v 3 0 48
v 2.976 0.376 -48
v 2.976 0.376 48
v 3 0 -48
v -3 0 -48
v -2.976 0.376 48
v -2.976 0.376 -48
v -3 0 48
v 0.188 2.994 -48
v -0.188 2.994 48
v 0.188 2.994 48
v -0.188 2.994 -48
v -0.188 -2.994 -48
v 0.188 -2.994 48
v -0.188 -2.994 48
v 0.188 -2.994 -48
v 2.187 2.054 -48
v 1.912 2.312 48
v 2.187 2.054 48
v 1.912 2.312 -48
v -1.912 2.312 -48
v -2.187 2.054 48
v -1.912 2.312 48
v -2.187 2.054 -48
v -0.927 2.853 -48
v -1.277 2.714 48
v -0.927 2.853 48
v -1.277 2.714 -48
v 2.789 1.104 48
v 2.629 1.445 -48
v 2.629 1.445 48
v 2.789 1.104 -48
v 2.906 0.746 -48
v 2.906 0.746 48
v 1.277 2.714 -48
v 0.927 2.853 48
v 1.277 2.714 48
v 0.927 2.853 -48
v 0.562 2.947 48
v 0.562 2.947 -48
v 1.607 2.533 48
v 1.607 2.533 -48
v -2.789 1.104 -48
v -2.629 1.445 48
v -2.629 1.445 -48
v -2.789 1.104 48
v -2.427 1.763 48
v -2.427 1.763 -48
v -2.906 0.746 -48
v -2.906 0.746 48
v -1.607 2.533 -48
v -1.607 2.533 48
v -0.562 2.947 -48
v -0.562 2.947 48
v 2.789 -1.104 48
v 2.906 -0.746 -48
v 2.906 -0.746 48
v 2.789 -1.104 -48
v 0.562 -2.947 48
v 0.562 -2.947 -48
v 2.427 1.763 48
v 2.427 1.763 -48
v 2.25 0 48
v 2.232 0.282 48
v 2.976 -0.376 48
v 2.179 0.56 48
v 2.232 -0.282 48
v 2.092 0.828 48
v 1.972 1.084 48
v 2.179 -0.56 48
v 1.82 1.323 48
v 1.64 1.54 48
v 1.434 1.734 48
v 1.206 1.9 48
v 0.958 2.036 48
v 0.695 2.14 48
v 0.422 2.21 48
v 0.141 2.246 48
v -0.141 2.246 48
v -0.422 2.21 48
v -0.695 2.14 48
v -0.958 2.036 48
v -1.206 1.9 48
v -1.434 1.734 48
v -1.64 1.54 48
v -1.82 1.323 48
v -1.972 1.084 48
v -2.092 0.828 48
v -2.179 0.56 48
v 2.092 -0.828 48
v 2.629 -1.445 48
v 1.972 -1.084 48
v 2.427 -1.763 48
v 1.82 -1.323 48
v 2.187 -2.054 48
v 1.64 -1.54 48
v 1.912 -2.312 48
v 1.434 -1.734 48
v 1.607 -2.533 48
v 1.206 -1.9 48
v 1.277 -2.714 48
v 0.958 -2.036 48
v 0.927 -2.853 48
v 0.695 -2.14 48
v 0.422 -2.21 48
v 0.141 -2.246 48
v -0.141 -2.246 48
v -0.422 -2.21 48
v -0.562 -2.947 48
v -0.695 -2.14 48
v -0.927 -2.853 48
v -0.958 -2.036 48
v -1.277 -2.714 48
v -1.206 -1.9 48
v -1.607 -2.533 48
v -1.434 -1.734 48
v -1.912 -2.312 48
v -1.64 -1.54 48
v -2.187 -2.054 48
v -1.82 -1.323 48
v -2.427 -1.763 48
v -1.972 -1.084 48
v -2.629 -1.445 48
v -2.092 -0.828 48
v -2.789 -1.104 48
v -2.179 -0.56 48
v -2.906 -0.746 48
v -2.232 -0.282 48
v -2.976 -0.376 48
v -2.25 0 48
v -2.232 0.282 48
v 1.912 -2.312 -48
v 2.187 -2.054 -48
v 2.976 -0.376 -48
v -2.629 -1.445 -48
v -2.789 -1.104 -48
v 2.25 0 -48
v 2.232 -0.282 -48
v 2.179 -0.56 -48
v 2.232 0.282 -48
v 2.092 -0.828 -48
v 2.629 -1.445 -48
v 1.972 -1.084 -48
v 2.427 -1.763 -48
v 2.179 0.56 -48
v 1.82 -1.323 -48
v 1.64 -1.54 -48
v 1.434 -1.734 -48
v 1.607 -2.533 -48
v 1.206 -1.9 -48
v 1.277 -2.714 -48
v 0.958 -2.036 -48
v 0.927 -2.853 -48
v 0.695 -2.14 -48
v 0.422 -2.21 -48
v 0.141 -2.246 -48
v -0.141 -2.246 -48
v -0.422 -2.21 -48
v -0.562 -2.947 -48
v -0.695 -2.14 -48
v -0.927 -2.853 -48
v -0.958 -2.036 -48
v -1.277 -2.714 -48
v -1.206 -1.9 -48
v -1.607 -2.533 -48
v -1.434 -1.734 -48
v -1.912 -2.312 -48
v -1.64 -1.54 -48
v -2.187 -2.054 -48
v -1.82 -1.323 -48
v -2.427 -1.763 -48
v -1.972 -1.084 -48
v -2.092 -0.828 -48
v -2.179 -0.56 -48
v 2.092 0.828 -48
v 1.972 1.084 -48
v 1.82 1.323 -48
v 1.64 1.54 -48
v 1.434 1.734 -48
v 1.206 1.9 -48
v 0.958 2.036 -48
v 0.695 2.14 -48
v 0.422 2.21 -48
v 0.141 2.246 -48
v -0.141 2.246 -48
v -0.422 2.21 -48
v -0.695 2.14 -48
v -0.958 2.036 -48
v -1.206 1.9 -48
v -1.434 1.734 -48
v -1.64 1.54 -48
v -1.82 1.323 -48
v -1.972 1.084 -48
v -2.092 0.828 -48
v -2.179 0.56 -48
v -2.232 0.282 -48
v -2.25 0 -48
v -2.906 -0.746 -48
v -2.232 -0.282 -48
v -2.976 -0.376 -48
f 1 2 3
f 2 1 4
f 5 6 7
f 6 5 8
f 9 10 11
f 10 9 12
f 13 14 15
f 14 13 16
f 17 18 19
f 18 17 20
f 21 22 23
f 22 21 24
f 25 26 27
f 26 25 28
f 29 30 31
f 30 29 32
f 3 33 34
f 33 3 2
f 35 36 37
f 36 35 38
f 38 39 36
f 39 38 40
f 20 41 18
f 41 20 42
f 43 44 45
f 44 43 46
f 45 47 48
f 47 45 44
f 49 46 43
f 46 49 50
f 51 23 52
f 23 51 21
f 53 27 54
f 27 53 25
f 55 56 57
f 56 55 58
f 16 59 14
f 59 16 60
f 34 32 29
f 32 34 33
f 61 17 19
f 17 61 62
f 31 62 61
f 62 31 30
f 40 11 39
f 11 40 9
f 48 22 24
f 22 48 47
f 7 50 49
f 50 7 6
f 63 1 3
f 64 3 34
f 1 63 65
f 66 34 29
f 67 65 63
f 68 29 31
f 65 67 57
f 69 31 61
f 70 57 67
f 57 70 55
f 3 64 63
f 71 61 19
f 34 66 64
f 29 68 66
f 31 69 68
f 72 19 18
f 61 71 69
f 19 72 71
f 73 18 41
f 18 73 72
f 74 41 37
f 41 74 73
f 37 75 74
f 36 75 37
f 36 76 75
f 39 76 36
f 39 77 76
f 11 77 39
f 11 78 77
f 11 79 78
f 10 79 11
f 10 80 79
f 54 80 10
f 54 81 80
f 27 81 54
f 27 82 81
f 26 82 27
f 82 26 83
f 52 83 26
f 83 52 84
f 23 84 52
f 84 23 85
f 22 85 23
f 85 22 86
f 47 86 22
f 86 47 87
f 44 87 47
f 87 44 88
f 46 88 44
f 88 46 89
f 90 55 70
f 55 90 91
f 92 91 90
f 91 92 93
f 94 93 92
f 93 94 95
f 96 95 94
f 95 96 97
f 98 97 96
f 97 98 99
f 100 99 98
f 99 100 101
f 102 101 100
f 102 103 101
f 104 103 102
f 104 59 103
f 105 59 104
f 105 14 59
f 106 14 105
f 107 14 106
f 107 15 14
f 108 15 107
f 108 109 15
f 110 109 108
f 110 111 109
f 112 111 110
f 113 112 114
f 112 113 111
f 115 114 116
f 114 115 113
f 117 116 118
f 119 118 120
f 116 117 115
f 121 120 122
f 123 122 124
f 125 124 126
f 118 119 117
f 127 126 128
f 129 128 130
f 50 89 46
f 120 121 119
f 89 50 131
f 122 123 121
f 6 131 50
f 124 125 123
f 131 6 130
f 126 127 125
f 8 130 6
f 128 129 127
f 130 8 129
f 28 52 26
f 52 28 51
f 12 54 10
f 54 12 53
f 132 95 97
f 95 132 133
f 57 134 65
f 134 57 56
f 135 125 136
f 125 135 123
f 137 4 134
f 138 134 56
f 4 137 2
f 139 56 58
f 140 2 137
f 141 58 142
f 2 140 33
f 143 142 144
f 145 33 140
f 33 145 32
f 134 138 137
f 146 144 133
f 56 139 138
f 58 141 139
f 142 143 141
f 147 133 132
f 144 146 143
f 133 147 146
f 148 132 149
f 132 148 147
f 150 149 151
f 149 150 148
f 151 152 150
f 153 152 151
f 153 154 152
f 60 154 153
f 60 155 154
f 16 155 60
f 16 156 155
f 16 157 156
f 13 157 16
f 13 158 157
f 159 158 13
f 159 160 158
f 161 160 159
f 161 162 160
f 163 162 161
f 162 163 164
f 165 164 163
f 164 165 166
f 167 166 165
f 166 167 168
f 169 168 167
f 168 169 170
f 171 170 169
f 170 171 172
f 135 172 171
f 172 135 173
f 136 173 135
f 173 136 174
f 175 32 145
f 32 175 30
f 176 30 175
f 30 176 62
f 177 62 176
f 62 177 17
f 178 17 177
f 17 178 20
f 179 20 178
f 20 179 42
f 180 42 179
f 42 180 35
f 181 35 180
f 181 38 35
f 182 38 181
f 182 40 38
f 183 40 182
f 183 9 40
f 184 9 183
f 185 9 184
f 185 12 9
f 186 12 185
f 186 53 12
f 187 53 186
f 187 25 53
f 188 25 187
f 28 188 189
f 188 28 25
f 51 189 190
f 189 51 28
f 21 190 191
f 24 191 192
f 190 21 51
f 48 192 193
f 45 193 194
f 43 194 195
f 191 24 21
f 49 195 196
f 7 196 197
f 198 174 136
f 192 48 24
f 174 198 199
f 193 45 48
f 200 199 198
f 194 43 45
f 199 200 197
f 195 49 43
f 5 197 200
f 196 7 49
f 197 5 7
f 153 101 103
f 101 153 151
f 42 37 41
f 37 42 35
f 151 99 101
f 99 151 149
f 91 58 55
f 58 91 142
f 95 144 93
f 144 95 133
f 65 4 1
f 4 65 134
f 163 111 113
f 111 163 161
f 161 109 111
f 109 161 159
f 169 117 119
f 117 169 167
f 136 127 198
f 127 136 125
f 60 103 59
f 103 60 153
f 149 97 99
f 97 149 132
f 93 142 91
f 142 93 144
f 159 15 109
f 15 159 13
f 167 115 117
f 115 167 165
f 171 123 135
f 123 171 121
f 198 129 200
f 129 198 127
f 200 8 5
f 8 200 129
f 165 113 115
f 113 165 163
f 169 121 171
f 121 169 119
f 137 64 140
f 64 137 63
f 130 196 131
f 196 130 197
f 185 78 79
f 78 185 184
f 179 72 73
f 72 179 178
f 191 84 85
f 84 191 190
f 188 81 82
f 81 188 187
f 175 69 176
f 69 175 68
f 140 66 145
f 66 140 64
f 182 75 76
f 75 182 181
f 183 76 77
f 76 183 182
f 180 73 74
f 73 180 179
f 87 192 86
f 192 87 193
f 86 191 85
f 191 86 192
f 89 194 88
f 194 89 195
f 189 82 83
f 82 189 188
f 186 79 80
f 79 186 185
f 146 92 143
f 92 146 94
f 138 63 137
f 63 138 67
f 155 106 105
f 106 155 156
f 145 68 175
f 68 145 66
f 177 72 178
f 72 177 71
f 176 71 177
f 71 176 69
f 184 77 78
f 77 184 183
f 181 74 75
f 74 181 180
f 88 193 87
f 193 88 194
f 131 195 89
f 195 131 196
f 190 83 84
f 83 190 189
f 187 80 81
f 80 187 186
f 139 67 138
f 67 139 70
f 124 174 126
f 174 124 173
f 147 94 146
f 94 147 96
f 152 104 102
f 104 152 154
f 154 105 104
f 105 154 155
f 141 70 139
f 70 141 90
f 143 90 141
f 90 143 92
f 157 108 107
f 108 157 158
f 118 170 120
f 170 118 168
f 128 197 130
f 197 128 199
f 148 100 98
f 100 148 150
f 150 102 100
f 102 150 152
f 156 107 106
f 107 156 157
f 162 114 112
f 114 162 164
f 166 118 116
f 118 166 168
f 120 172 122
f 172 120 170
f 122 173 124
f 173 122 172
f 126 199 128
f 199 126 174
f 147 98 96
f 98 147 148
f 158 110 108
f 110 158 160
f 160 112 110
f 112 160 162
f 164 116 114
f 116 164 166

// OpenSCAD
$fn = 50;


difference() {
	union() {
		translate(v = [0, 0, -48.0000000000]) {
			cylinder(h = 96, r = 3.0000000000);
		}
	}
	union() {
		translate(v = [0, 0, -100.0000000000]) {
			cylinder(h = 200, r = 2.2500000000);
		}
	}
}
